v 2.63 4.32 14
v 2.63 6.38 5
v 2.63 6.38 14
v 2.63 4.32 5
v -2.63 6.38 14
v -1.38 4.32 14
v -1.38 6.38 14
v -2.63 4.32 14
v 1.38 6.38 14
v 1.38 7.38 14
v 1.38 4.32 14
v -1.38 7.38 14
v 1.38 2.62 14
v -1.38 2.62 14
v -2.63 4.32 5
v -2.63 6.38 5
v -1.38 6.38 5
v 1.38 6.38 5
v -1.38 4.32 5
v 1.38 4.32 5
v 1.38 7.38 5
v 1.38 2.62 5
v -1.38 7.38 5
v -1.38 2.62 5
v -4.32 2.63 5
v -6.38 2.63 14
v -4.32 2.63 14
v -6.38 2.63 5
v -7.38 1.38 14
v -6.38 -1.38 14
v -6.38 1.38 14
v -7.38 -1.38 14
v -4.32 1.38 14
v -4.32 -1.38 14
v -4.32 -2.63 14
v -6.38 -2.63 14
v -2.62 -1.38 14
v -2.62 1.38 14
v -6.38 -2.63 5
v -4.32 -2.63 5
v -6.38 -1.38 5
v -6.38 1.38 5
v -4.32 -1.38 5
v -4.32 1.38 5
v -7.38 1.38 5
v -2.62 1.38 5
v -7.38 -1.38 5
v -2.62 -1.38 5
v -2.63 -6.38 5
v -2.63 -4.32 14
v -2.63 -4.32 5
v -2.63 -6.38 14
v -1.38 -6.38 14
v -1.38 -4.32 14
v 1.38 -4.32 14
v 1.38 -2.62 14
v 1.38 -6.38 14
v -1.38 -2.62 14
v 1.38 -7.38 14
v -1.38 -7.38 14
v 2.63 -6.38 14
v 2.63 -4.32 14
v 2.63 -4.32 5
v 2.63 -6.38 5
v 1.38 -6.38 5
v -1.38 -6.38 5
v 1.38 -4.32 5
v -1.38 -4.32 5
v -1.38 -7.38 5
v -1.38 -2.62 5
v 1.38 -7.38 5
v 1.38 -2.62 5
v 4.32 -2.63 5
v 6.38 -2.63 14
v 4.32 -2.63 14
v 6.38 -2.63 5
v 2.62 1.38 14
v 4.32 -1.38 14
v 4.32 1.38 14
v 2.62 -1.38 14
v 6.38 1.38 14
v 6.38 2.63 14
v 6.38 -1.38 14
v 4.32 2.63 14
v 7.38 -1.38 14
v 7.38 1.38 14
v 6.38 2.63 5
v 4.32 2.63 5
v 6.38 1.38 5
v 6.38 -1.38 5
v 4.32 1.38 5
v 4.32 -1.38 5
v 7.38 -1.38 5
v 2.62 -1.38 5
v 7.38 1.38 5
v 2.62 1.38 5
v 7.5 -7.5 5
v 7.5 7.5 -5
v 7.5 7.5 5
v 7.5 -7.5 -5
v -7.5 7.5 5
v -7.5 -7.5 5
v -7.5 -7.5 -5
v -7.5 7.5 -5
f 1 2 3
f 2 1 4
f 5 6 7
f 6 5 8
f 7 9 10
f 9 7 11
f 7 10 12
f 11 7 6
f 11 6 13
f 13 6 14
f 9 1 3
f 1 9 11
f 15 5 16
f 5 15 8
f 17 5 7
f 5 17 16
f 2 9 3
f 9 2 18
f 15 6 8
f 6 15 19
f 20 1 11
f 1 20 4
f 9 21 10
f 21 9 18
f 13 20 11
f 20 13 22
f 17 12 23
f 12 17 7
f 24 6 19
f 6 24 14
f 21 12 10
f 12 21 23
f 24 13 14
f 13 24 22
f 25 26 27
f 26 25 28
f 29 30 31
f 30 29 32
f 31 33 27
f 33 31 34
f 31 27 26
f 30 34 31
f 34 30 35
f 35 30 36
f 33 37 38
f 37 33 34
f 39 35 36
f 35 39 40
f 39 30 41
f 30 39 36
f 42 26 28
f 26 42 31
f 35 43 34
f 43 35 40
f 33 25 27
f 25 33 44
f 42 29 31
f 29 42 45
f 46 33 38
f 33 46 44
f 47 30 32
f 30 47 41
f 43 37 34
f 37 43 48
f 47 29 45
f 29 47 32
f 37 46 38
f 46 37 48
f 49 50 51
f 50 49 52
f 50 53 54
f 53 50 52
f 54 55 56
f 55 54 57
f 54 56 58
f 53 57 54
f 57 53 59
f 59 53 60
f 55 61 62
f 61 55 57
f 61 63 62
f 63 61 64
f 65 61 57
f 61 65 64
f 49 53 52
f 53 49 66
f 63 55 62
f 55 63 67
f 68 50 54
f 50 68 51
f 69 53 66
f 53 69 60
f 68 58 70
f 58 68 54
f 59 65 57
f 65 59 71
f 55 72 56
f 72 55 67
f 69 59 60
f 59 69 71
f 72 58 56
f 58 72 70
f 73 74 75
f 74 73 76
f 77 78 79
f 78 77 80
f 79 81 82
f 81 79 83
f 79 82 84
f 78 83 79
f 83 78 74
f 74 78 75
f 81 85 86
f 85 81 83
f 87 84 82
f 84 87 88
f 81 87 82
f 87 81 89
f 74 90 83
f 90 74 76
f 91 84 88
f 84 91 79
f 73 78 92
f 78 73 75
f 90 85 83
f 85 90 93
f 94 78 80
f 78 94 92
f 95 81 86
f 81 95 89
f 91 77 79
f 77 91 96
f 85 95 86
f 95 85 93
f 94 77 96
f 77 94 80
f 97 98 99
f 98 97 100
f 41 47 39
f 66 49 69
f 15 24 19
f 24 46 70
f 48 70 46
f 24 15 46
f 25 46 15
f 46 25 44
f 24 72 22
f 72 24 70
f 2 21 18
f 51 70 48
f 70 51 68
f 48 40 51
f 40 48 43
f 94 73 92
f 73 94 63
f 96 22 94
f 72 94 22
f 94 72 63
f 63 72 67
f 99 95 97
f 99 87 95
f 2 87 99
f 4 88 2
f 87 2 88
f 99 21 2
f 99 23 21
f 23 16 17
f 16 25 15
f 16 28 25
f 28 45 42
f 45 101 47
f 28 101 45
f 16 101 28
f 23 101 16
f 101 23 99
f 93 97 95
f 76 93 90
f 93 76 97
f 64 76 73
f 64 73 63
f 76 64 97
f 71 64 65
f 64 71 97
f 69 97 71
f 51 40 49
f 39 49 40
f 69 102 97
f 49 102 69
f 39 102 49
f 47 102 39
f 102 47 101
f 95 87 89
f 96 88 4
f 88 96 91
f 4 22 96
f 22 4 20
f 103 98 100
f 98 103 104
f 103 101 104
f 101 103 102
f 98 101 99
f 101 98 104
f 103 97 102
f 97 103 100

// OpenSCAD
//makerbeam replica only keeping the bits that are interesting to us:

//units are mm

//makerbeamXL:

wid = 15;
leng = 15;
offs = 4.8;
tol = 0.12;
horiz = 5.5;
thick_hor = 2.3;
vert = 5;
thick_ver = 3;

cube([wid,leng,10],center=true);
for(i = [0 : 1 : 3]){
rotate([0,0,i*90]){
translate([0,wid/2-thick_hor/2-1,9]){
cube([horiz-2*tol,thick_hor-2*tol,10],center=true);
}//end translate
translate([0,wid/2-thick_hor/2-1.35,9]){
cube([thick_ver-2*tol,vert-2*tol,10],center=true);
}//end translate
}//end rotate
}
